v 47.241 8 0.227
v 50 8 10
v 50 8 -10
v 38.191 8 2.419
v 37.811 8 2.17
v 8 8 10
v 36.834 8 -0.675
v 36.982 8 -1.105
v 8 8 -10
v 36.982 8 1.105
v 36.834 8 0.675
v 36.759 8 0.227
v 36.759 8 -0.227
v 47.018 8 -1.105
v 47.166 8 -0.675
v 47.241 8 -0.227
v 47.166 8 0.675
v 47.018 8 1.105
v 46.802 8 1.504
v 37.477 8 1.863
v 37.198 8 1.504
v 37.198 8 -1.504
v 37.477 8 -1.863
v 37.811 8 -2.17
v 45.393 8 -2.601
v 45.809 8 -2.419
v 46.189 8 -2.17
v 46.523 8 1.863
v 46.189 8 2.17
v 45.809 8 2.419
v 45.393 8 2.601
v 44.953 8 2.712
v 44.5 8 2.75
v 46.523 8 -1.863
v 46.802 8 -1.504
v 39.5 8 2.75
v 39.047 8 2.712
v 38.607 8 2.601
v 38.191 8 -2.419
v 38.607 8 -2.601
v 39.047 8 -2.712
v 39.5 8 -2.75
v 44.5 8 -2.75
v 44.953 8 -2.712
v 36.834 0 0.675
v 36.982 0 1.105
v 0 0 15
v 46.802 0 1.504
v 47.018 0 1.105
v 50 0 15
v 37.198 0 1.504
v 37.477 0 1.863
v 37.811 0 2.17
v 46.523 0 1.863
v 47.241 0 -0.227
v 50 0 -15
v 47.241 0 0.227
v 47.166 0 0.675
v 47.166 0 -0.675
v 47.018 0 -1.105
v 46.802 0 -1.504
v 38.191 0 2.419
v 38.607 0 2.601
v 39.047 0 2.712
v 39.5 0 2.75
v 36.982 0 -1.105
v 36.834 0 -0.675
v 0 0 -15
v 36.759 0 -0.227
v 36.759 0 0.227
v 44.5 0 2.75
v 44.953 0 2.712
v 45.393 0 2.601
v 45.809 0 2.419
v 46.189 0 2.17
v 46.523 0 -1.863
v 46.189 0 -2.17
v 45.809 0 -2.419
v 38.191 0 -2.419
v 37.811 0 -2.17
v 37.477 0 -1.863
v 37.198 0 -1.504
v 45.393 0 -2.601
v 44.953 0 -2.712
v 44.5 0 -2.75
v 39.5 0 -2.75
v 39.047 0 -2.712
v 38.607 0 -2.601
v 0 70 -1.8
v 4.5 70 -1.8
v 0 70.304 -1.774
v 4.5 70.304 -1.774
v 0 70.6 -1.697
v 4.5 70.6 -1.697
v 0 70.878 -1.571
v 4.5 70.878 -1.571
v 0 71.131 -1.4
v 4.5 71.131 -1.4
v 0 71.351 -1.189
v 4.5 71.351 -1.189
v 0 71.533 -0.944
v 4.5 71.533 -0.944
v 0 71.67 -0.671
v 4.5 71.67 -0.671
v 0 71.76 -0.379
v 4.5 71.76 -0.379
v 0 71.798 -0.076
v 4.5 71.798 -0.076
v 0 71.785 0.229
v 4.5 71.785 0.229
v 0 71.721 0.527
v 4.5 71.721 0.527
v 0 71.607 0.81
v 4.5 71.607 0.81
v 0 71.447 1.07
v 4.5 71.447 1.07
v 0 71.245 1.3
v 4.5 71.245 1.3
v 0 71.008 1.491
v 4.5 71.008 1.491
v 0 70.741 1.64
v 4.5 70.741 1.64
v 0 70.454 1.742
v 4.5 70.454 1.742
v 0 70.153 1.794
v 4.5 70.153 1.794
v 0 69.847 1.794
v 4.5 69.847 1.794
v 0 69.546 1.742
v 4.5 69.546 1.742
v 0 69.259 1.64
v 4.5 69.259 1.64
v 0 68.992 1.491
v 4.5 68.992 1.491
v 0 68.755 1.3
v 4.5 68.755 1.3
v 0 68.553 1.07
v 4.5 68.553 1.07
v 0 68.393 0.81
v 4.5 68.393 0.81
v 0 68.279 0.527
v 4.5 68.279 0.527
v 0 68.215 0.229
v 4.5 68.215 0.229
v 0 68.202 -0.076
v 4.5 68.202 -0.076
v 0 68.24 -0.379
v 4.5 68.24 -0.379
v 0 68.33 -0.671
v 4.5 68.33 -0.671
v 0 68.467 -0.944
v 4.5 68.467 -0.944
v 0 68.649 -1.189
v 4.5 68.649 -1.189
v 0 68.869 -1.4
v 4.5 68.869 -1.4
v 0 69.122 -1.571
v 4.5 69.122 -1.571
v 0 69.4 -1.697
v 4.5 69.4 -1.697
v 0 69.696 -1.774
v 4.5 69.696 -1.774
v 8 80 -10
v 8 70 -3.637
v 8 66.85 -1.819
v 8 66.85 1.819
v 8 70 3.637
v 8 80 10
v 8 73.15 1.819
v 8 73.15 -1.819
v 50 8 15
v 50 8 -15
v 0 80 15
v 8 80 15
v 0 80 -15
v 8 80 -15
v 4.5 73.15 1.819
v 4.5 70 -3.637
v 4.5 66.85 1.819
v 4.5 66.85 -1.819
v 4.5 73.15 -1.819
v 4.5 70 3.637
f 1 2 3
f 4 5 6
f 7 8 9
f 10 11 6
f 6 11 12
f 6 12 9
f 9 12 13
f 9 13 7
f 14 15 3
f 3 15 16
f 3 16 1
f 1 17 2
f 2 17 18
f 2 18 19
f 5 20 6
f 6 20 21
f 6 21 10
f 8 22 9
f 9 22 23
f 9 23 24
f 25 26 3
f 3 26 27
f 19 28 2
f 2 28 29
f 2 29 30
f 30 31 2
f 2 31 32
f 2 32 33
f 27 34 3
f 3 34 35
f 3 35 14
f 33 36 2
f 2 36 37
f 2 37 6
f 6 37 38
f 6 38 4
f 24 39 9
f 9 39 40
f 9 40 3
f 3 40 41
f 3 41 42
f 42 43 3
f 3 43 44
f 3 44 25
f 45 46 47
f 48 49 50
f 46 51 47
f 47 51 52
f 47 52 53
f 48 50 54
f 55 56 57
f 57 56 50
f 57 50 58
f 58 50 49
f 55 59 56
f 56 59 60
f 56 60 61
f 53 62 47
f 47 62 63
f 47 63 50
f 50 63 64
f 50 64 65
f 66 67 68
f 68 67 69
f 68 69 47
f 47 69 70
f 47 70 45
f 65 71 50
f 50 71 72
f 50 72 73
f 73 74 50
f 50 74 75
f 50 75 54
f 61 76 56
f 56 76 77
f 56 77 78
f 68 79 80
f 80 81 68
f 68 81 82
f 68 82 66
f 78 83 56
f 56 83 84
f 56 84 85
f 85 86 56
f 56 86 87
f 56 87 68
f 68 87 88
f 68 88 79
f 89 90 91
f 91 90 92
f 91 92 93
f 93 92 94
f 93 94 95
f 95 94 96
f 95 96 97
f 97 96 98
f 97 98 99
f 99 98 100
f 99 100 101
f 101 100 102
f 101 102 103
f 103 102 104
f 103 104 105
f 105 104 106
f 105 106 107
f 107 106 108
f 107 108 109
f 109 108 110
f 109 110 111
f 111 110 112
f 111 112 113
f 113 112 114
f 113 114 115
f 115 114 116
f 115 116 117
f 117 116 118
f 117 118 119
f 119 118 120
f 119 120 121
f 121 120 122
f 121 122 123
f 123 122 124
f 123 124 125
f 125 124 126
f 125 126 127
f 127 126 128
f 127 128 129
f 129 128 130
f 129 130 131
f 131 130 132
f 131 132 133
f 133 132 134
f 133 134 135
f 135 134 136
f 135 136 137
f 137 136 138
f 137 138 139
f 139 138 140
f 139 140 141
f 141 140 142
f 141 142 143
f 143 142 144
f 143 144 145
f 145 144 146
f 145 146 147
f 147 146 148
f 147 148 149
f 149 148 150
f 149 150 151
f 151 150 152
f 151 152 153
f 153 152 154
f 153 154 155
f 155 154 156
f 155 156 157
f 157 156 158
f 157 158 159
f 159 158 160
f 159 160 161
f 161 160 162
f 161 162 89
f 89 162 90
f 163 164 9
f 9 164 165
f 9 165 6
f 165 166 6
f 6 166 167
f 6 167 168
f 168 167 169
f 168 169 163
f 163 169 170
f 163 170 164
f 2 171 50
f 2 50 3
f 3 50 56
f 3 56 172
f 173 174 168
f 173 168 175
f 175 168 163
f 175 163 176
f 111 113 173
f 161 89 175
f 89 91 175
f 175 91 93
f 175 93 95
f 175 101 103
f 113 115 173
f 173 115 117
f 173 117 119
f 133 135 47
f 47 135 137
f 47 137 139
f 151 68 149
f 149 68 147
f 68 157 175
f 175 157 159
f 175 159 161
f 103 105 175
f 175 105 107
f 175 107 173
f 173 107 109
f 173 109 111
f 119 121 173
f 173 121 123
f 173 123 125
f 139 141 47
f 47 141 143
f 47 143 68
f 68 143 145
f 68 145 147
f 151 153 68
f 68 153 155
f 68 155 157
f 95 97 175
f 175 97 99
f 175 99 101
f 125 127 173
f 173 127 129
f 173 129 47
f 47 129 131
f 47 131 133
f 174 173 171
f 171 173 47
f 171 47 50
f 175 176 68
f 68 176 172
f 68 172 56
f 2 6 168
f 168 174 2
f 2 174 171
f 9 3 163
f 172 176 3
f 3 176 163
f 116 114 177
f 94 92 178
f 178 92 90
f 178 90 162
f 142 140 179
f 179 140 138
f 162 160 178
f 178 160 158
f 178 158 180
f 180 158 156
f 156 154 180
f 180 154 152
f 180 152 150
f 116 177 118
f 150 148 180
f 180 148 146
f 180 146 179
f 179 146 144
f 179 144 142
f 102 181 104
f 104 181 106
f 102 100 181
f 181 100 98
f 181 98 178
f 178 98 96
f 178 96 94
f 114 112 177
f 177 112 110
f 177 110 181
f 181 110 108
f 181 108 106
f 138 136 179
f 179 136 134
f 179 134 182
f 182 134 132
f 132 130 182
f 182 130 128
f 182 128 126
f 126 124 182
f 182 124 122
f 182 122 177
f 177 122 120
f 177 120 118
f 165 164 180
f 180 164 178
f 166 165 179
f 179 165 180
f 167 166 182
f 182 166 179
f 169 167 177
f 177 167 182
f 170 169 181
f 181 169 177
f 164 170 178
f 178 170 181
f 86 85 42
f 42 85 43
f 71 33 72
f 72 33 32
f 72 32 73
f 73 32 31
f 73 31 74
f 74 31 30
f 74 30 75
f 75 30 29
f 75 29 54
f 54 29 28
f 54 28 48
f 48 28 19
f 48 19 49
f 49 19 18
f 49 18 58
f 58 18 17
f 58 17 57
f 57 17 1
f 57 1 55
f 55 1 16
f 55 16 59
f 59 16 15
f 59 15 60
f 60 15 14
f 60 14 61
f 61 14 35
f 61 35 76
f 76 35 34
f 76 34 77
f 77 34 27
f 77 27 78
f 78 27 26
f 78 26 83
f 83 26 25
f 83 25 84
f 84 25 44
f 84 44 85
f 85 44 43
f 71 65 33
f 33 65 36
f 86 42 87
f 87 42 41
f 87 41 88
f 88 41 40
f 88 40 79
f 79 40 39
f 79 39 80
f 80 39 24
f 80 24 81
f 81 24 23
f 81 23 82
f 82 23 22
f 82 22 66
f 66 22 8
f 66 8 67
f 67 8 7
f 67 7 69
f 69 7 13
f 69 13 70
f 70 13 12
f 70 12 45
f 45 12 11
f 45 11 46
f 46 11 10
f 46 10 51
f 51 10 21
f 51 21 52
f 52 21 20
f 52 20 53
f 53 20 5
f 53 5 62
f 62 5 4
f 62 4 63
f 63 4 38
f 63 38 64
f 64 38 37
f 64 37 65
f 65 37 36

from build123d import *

# Parameters (mm, degrees)
BOSS_EXTRUDE1_DEPTH  = 15
RIB1_REACH           = 100.995
SKETCH2_WALL_W       = 283.344562668
SKETCH2_WALL_H       = 5
M3_CLEARANCE_HOLE1_D = 3.6
CUT_EXTRUDE2_DEPTH   = 3.5
CUT_EXTRUDE3_DEPTH   = 89.932558717


with BuildPart() as part:
    # Sketch1 → Boss-Extrude1 (new, symmetric)
    with BuildSketch(Plane.XY):
        Polygon((0, 0), (0, 80), (8, 80), (8, 8), (50, 8), (50, 0), align=None)
    extrude(amount=BOSS_EXTRUDE1_DEPTH, both=True)

    # Sketch2 wall → Rib1 (add, up to next)
    with BuildSketch(Plane(origin=(29, 44, 15), x_dir=(0.503871025524, -0.863778900898, 0), z_dir=(0.863778900898, 0.503871025524, 0)), mode=Mode.PRIVATE) as rib1_sk1:
        with Locations((0, 2.5)):
            Rectangle(SKETCH2_WALL_W, SKETCH2_WALL_H)
    rib1_tool1 = extrude(rib1_sk1.sketch, amount=-RIB1_REACH, mode=Mode.PRIVATE) - part.part
    rib1 = rib1_tool1.solids().sort_by_distance((29, 44, 15))[0]
    add(rib1)

    # Mirror1: Rib1 across plane
    add(rib1.mirror(Plane.XY))

    # M3 Clearance Hole1 (through all)
    with Locations(Plane(origin=(8, 0, 0), x_dir=(0, 0, -1), z_dir=(1, 0, 0))):
        with Locations((0, 70)):
            Hole(M3_CLEARANCE_HOLE1_D / 2)

    # Sketch6 → Cut-Extrude2 (cut)
    with BuildSketch(Plane(origin=(8, 0, 0), x_dir=(0, 0, -1), z_dir=(1, 0, 0))):
        Polygon((3.637306696, 70), (1.818653348, 73.15), (-1.818653348, 73.15), (-3.637306696, 70), (-1.818653348, 66.85), (1.818653348, 66.85), align=None)
    extrude(amount=-CUT_EXTRUDE2_DEPTH, mode=Mode.SUBTRACT)

    # Sketch7 → Cut-Extrude3 (cut, through all)
    with BuildSketch(Plane(origin=(0, 8, 0), x_dir=(1, 0, 0), z_dir=(0, 1, 0))):
        with BuildLine():
            Line((39.5, 2.75), (44.5, 2.75))
            ThreePointArc((44.5, 2.75), (47.25, 0), (44.5, -2.75))
            Line((44.5, -2.75), (39.5, -2.75))
            ThreePointArc((39.5, -2.75), (36.75, 0), (39.5, 2.75))
        make_face()
    extrude(amount=-CUT_EXTRUDE3_DEPTH, mode=Mode.SUBTRACT)


solid = part.part
